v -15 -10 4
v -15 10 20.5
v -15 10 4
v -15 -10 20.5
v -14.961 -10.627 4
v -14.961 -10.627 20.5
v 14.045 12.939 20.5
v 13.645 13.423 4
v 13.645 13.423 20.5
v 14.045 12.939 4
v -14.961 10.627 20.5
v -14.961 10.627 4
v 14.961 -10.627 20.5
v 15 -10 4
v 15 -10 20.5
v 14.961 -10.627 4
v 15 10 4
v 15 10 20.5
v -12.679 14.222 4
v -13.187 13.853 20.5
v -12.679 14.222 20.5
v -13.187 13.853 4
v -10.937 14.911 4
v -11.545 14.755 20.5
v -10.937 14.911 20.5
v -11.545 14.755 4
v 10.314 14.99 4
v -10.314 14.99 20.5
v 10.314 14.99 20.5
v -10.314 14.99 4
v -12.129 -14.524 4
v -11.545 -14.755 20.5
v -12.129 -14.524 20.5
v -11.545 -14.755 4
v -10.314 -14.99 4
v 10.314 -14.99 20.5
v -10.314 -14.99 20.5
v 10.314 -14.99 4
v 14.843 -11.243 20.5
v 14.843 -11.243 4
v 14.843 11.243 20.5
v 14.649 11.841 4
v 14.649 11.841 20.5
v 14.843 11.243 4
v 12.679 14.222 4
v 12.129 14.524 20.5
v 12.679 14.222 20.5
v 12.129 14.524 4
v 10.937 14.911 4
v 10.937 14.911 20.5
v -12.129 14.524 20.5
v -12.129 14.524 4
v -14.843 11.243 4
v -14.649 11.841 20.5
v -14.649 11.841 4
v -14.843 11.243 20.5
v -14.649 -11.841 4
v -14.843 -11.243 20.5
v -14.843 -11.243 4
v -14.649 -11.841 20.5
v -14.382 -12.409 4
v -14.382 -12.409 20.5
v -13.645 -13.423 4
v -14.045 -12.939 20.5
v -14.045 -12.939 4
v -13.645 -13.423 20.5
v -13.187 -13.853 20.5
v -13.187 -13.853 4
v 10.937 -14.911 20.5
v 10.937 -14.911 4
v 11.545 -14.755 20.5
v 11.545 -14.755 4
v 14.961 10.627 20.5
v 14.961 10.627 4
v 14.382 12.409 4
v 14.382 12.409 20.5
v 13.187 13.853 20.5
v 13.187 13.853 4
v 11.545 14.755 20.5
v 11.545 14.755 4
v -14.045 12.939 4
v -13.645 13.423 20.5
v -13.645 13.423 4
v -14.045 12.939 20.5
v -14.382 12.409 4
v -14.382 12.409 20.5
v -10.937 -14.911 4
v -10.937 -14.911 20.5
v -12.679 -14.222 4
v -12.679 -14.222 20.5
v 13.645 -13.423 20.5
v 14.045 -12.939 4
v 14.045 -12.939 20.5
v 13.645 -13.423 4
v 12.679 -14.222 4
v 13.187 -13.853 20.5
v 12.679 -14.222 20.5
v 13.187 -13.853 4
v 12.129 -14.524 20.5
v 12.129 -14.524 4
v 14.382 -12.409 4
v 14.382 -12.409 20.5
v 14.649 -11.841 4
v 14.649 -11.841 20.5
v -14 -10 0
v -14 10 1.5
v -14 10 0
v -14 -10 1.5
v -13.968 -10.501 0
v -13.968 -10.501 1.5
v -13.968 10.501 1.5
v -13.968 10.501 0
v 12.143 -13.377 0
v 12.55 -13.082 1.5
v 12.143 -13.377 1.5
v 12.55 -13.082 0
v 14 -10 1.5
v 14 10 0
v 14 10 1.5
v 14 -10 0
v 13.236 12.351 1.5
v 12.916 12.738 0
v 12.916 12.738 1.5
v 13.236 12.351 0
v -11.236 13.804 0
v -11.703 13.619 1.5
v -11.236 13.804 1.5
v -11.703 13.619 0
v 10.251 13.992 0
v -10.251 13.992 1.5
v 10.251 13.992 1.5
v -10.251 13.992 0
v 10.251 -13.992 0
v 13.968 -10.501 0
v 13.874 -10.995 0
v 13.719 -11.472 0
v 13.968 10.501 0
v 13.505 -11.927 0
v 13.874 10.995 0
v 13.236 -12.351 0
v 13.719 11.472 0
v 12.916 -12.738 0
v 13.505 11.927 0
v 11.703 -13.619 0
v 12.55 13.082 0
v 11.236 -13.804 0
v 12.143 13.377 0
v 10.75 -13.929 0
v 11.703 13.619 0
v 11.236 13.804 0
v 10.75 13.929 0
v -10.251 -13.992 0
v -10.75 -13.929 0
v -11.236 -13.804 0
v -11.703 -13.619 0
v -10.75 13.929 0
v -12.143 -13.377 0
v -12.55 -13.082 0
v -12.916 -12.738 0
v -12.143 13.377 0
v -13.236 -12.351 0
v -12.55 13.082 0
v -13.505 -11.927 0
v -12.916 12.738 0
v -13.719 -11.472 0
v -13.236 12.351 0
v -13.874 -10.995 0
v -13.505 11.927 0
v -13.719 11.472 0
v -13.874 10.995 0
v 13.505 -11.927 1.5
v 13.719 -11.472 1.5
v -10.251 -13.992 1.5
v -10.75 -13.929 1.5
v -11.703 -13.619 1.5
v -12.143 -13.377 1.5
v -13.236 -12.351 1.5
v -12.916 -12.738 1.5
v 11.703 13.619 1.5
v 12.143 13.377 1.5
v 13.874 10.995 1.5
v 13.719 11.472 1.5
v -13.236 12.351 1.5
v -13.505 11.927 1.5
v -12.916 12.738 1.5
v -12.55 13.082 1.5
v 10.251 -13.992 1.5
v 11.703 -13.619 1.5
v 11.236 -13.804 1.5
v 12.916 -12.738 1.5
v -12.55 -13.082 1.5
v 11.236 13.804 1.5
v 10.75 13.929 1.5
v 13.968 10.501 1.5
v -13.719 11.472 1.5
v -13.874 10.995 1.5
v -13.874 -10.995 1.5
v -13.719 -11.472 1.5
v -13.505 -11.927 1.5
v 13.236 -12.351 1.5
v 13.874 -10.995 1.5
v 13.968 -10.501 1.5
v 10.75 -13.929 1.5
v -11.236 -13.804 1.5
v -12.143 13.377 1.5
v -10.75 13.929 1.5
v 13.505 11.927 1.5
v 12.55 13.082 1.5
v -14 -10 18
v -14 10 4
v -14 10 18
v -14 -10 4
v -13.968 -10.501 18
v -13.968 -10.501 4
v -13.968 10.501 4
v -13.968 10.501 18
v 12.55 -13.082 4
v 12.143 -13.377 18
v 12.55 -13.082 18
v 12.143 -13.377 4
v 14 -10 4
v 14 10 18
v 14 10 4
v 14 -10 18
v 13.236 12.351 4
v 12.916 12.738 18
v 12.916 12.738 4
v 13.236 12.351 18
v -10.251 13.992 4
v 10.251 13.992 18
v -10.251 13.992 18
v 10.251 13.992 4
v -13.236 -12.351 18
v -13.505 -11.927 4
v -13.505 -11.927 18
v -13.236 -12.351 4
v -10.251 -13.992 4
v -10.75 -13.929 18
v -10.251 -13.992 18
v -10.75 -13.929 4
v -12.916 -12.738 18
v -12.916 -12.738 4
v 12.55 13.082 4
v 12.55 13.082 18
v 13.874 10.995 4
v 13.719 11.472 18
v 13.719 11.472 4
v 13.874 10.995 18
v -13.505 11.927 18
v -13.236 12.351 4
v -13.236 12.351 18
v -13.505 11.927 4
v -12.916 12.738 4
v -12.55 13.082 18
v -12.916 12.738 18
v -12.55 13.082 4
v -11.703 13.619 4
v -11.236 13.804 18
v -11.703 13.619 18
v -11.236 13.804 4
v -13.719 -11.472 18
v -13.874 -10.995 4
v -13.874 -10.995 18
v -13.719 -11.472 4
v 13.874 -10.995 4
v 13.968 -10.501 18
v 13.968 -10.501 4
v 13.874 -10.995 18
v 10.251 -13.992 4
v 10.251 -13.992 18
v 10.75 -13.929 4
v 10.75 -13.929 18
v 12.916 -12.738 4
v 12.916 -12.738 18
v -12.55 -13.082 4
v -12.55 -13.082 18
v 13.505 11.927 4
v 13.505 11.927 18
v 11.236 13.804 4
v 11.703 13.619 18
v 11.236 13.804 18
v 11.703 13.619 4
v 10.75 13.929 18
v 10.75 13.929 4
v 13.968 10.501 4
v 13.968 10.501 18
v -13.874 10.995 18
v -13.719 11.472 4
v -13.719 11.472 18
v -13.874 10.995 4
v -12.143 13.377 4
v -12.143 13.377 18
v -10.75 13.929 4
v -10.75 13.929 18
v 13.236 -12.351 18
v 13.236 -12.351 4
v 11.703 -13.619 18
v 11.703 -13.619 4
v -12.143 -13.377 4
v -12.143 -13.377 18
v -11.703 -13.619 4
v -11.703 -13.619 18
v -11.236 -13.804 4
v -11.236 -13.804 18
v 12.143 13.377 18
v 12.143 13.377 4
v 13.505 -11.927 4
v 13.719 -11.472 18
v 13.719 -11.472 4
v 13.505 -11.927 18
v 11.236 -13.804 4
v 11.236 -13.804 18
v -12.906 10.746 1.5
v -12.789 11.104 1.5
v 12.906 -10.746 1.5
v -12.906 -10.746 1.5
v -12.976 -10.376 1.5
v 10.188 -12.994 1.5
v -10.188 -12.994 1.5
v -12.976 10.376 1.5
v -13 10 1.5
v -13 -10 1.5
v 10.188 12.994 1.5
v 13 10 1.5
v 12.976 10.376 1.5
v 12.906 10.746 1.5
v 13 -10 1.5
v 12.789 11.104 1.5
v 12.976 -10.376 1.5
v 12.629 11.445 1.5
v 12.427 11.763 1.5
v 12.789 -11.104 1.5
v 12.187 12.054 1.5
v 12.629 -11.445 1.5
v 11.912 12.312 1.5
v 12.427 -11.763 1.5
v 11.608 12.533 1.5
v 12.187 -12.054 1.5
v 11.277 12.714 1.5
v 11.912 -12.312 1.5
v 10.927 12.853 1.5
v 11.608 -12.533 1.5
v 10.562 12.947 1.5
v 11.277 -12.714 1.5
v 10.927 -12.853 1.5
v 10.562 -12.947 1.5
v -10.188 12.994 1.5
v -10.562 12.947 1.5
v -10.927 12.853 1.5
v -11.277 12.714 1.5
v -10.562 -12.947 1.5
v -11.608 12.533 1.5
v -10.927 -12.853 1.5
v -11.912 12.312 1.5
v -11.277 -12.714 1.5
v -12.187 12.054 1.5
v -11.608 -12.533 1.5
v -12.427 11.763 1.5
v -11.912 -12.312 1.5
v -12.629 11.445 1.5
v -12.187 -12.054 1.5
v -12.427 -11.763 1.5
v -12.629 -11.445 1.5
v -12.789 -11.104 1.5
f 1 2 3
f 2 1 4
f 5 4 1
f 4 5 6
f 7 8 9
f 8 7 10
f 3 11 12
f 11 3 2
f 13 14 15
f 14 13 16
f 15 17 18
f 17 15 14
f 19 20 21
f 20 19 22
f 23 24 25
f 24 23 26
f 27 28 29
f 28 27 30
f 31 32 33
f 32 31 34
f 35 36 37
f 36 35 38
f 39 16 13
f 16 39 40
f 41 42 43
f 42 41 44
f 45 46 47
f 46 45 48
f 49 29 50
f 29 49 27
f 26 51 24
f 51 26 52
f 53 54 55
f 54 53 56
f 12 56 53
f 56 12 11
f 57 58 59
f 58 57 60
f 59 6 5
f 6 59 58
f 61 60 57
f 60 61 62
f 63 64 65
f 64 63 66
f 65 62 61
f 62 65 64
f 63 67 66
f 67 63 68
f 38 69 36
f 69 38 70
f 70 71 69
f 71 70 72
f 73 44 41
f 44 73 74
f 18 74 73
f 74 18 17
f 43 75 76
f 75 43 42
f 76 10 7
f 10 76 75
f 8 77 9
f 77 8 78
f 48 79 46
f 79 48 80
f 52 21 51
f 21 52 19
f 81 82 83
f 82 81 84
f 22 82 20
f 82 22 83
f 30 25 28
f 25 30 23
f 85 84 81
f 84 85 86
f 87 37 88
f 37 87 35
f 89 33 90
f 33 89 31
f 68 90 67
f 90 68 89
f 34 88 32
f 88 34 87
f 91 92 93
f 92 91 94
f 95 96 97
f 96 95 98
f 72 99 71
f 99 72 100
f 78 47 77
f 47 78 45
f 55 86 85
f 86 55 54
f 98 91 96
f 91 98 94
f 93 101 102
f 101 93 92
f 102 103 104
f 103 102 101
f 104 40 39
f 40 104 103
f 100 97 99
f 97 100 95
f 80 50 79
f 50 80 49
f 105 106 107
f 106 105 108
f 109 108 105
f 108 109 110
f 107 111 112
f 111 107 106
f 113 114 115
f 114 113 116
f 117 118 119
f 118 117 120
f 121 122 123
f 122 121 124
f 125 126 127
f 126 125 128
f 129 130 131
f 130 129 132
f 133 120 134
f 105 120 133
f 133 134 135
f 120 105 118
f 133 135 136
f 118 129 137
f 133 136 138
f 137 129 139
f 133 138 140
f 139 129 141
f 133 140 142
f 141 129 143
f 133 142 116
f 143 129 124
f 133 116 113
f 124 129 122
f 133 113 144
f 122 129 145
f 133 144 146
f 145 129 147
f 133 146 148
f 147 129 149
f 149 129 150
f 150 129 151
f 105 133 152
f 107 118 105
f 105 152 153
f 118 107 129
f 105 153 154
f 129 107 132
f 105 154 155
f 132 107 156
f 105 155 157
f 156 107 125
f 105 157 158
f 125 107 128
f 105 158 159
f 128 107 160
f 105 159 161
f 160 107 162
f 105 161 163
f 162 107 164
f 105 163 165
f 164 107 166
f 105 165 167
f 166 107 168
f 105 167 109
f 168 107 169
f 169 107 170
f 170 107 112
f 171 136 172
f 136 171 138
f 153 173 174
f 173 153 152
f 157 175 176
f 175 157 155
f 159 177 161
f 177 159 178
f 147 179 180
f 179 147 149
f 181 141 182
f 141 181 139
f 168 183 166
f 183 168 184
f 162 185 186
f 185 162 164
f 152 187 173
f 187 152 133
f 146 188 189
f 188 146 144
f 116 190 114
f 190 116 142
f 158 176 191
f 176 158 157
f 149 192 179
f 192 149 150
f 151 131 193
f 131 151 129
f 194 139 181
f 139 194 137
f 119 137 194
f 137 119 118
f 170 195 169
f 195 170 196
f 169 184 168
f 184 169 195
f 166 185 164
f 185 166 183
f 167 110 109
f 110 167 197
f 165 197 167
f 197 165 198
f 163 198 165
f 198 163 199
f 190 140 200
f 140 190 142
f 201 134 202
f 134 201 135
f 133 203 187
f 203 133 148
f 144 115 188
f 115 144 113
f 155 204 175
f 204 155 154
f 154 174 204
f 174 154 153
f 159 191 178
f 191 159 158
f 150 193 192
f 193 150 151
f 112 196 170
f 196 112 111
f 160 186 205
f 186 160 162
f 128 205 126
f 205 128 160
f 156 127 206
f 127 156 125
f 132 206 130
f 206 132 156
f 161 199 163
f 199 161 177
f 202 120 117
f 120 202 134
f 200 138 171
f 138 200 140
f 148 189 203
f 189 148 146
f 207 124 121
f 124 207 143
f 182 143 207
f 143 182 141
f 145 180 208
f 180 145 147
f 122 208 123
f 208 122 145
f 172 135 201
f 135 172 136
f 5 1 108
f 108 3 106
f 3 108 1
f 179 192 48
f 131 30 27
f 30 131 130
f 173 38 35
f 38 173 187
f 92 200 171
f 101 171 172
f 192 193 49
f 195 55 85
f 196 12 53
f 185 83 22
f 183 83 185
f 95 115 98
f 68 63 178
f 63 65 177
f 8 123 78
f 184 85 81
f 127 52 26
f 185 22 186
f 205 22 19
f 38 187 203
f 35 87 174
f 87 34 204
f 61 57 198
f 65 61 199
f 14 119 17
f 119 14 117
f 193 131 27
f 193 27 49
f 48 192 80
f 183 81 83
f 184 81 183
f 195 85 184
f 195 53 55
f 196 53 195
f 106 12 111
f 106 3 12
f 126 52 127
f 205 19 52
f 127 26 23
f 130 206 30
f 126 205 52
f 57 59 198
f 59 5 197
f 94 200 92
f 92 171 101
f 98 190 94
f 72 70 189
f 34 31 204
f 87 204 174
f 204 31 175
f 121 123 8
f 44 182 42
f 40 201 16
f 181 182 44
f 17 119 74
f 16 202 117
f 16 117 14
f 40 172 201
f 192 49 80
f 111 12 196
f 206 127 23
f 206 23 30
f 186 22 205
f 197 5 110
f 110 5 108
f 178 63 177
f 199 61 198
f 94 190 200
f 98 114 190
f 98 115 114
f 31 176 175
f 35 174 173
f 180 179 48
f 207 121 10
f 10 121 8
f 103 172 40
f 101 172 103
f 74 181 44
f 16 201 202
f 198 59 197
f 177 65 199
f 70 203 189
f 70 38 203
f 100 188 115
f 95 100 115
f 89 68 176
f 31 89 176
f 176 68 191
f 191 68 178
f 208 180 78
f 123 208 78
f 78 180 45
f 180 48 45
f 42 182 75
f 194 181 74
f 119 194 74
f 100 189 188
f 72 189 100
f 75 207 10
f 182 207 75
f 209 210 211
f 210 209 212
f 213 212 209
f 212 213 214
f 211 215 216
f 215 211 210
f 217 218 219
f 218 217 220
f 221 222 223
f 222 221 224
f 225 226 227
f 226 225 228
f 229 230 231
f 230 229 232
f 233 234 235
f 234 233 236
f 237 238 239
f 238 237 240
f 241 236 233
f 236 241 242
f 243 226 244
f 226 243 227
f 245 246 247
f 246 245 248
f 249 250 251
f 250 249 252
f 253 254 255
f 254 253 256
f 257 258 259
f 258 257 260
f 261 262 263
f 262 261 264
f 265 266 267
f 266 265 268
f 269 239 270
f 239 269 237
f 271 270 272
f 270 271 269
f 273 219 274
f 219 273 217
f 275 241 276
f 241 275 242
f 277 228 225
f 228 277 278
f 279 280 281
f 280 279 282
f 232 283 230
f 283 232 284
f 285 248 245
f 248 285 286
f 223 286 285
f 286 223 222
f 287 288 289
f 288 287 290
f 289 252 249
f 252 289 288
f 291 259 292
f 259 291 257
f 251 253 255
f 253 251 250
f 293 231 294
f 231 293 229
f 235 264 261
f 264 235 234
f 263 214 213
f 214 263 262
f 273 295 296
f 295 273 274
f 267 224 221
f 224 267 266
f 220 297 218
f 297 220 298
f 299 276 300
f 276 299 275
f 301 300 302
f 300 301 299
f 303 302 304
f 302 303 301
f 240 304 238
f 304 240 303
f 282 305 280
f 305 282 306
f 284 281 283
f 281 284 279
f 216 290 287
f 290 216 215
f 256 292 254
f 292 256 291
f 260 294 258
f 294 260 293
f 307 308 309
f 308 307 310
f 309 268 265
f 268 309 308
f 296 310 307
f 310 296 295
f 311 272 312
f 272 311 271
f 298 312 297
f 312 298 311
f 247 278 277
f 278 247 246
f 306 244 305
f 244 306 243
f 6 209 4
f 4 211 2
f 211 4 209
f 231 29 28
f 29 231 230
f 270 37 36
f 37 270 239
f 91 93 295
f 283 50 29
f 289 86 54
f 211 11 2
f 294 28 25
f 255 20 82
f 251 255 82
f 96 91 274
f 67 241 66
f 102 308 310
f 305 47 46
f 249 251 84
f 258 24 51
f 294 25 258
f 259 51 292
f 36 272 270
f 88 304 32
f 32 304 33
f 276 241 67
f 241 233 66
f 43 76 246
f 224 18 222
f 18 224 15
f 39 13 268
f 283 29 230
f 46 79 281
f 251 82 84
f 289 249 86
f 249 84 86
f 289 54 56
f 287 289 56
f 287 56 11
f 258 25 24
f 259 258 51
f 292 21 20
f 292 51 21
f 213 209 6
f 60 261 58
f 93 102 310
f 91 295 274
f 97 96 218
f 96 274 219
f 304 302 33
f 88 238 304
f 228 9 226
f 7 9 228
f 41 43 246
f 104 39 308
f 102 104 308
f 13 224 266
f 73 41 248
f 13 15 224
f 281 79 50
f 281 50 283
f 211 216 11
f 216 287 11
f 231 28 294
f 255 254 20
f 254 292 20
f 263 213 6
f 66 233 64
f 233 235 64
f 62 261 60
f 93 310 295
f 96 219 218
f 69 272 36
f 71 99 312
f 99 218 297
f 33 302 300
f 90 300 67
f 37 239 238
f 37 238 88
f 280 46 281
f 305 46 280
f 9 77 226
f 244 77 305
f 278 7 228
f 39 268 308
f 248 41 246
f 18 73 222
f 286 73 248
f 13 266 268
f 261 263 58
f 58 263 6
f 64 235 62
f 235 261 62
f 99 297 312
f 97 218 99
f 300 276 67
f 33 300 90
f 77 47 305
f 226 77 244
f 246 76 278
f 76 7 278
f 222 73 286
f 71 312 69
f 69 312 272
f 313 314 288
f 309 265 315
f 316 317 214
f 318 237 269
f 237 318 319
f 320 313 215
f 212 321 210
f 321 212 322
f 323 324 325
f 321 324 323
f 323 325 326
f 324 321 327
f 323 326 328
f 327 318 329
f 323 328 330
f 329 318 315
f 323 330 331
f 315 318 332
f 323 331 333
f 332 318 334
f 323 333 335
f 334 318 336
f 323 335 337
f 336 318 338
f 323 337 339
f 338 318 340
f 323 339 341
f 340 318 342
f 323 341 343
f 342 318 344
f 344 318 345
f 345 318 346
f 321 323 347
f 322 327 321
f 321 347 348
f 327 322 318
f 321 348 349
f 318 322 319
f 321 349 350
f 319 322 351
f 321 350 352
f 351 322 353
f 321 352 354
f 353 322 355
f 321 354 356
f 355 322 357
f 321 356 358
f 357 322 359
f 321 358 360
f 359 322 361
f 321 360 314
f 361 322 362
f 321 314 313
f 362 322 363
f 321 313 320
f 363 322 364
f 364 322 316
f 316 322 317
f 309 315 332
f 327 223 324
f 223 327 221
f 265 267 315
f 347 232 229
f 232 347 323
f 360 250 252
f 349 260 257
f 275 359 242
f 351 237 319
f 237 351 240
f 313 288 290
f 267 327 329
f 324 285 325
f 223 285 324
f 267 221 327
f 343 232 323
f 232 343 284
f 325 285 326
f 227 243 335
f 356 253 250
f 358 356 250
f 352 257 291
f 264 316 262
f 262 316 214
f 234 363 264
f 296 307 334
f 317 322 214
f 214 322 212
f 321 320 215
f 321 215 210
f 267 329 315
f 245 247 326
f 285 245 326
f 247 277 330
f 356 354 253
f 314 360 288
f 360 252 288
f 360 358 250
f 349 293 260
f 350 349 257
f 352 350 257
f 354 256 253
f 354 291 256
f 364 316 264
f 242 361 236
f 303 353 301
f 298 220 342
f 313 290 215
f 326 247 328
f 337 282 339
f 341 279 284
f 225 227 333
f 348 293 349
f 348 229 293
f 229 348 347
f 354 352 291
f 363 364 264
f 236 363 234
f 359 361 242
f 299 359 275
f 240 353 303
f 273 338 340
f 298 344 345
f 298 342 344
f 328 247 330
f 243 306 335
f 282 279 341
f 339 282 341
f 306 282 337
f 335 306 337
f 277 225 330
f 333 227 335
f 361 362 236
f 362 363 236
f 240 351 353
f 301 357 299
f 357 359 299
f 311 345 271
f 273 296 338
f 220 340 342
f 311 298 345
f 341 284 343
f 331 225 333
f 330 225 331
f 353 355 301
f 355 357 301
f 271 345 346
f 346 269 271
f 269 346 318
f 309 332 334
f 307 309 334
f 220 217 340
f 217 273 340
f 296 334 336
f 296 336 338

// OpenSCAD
$fn = 50;


difference() {
	union() {
		translate(v = [0, 0, 4.0000000000]) {
			hull() {
				translate(v = [-10.0000000000, 10.0000000000, 0]) {
					cylinder(h = 16.5000000000, r = 5);
				}
				translate(v = [10.0000000000, 10.0000000000, 0]) {
					cylinder(h = 16.5000000000, r = 5);
				}
				translate(v = [-10.0000000000, -10.0000000000, 0]) {
					cylinder(h = 16.5000000000, r = 5);
				}
				translate(v = [10.0000000000, -10.0000000000, 0]) {
					cylinder(h = 16.5000000000, r = 5);
				}
			}
		}
		hull() {
			translate(v = [-10.0000000000, 10.0000000000, 0]) {
				cylinder(h = 1.5000000000, r = 4);
			}
			translate(v = [10.0000000000, 10.0000000000, 0]) {
				cylinder(h = 1.5000000000, r = 4);
			}
			translate(v = [-10.0000000000, -10.0000000000, 0]) {
				cylinder(h = 1.5000000000, r = 4);
			}
			translate(v = [10.0000000000, -10.0000000000, 0]) {
				cylinder(h = 1.5000000000, r = 4);
			}
		}
		translate(v = [0, 0, 1.5000000000]) {
			hull() {
				translate(v = [-10.0000000000, 10.0000000000, 0]) {
					cylinder(h = 2.5000000000, r1 = 4, r2 = 5.0000000000);
				}
				translate(v = [10.0000000000, 10.0000000000, 0]) {
					cylinder(h = 2.5000000000, r1 = 4, r2 = 5.0000000000);
				}
				translate(v = [-10.0000000000, -10.0000000000, 0]) {
					cylinder(h = 2.5000000000, r1 = 4, r2 = 5.0000000000);
				}
				translate(v = [10.0000000000, -10.0000000000, 0]) {
					cylinder(h = 2.5000000000, r1 = 4, r2 = 5.0000000000);
				}
			}
		}
	}
	union() {
		translate(v = [0, 0, 4.0000000000]) {
			#hull() {
				translate(v = [-10.0000000000, 10.0000000000, 0]) {
					cylinder(h = 16.5000000000, r = 4);
				}
				translate(v = [10.0000000000, 10.0000000000, 0]) {
					cylinder(h = 16.5000000000, r = 4);
				}
				translate(v = [-10.0000000000, -10.0000000000, 0]) {
					cylinder(h = 16.5000000000, r = 4);
				}
				translate(v = [10.0000000000, -10.0000000000, 0]) {
					cylinder(h = 16.5000000000, r = 4);
				}
			}
		}
		translate(v = [0, 0, 18]) {
			hull() {
				translate(v = [-10.0000000000, 10.0000000000, 0]) {
					cylinder(h = 2.5000000000, r1 = 4, r2 = 5.0000000000);
				}
				translate(v = [10.0000000000, 10.0000000000, 0]) {
					cylinder(h = 2.5000000000, r1 = 4, r2 = 5.0000000000);
				}
				translate(v = [-10.0000000000, -10.0000000000, 0]) {
					cylinder(h = 2.5000000000, r1 = 4, r2 = 5.0000000000);
				}
				translate(v = [10.0000000000, -10.0000000000, 0]) {
					cylinder(h = 2.5000000000, r1 = 4, r2 = 5.0000000000);
				}
			}
		}
		translate(v = [0, 0, 1.5000000000]) {
			#hull() {
				translate(v = [-10.0000000000, 10.0000000000, 0]) {
					cylinder(h = 2.5000000000, r1 = 3, r2 = 4.0000000000);
				}
				translate(v = [10.0000000000, 10.0000000000, 0]) {
					cylinder(h = 2.5000000000, r1 = 3, r2 = 4.0000000000);
				}
				translate(v = [-10.0000000000, -10.0000000000, 0]) {
					cylinder(h = 2.5000000000, r1 = 3, r2 = 4.0000000000);
				}
				translate(v = [10.0000000000, -10.0000000000, 0]) {
					cylinder(h = 2.5000000000, r1 = 3, r2 = 4.0000000000);
				}
			}
		}
	}
}
